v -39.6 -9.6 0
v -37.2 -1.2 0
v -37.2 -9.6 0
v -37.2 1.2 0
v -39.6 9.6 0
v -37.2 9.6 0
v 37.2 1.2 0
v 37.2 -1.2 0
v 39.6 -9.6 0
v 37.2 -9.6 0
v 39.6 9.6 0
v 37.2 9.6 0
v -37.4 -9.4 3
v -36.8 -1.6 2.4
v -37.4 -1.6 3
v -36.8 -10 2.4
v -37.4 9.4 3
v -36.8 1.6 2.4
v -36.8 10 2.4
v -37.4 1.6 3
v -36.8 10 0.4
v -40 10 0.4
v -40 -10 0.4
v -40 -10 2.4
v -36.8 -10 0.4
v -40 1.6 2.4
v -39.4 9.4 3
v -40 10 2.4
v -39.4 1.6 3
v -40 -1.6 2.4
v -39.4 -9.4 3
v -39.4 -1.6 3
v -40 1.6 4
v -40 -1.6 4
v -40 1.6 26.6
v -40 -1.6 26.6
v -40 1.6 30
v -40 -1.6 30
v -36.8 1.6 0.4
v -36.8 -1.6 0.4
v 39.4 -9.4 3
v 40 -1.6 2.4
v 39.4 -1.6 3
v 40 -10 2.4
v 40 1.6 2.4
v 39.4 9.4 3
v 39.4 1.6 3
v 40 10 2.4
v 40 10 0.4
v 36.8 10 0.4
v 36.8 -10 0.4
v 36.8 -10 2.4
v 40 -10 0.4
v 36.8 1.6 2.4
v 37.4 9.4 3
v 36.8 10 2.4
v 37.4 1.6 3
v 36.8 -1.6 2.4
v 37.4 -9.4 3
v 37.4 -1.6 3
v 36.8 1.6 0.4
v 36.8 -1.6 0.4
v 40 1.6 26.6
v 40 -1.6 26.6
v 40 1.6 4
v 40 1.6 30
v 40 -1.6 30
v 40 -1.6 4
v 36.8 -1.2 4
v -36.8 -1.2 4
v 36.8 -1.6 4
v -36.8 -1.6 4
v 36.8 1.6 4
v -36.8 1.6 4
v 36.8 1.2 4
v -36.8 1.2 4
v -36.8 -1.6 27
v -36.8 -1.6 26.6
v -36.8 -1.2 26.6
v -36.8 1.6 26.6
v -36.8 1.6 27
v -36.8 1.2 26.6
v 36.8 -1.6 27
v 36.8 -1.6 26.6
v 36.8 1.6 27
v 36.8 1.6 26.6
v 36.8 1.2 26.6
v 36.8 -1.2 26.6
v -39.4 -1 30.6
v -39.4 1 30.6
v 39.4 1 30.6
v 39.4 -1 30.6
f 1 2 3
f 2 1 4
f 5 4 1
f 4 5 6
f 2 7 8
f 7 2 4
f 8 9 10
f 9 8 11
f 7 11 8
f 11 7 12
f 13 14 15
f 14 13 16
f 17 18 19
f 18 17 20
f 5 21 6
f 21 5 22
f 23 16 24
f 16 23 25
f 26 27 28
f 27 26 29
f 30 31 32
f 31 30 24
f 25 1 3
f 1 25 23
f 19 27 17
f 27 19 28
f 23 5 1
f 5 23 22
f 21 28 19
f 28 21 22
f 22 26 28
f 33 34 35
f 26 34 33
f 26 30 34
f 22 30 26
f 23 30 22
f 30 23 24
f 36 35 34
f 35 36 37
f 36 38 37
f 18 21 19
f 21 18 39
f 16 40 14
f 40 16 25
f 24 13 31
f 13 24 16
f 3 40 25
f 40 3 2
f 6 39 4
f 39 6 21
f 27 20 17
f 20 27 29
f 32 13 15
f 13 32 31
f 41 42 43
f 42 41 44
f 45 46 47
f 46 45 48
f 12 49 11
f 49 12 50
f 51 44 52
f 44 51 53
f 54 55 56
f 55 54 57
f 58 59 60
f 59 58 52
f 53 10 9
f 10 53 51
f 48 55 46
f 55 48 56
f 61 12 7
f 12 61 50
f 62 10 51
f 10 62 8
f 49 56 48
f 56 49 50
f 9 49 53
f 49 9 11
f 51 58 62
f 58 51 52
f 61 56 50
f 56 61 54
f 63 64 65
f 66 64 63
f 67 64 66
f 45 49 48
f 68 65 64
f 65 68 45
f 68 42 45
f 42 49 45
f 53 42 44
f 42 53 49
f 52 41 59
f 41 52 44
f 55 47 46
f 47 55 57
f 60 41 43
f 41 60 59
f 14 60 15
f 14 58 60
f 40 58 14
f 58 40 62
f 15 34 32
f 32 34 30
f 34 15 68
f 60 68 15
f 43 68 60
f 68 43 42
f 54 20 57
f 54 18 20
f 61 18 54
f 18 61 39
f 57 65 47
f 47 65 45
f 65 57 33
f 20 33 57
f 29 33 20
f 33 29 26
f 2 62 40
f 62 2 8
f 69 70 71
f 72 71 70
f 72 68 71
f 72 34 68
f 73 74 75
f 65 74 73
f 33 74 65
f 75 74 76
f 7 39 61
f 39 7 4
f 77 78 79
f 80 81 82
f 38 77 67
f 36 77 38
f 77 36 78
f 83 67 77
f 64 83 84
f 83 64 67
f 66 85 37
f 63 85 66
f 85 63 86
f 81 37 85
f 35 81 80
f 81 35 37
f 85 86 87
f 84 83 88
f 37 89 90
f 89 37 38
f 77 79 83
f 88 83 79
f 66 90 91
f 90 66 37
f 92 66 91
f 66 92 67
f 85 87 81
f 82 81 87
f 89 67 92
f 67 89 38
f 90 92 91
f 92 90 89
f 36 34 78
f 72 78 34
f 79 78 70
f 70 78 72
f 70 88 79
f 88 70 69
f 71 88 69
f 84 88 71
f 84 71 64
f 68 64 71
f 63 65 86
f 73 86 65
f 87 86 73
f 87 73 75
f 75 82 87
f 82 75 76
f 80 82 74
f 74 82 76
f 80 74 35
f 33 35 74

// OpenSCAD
// screen.scad - mobile privacy screen (design_brief.md 4.6). Straight panel 80 long (bed length)
// and 30.6 high (bed height + 10), both from common.scad; curtain 2.4 thick between 3.2 end
// posts, bottom rail 3.2 x 4, top rail 3.2 x 4 widening from the curtain at 45 deg, two feet
// 3.2 x 20 x 3 across the ends. Three colours: feet and bottom rail Z 0-4, curtain 4-26.6,
// top rail 26.6-30.6; the posts follow the bands. Prints upright, brim optional.
// Export: openscad -o screen.stl screen.scad
include <common.scad>

height_above_bed = 10;
height        = bed_h + height_above_bed;   // 30.6
length        = bed_l;                      // 80
curtain_t     = 2.4;
frame_t       = 3.2;                        // rails and end posts
bottom_rail_h = 4;
top_rail_h    = 4;
foot_l        = 20;
foot_h        = 3;
top_chamfer   = 0.6;

top_rail_z = height - top_rail_h;           // 26.6, second colour change
post_x     = (length - frame_t) / 2;        // post centres

// Band 1: bottom rail and feet, Z 0-4
module screen_base() band_colour(1) {
    l = length / 2; t = frame_t / 2; cb = chamfer_bottom;
    ring_stack([[l - cb, t - cb, 0], [l, t, cb], [l, t, bottom_rail_h]]);
    for (x = [-post_x, post_x]) translate([x, 0, 0]) chamfered_box([frame_t, foot_l, foot_h], cb = cb, ct = top_chamfer);
}

// Band 2: curtain and posts, Z 4-26.6
module screen_curtain() band_at(2, bottom_rail_h, top_rail_z - bottom_rail_h) {
    square([length - 2 * frame_t, curtain_t], center = true);
    for (x = [-post_x, post_x]) translate([x, 0]) square([frame_t, frame_t], center = true);
}

// Band 3: top rail, Z 26.6-30.6; its underside widens from the curtain to the frame at 45 deg
module screen_top_rail() band_colour(3) {
    l = length / 2; t = frame_t / 2; c = curtain_t / 2; step = t - c; ov = band_overlap;
    // the overlap into the curtain tapers in by ov, so no face is coplanar with the curtain
    ring_stack([[l - ov, c - ov, top_rail_z - ov], [l, c, top_rail_z], [l, t, top_rail_z + step],
                [l, t, height - top_chamfer], [l - top_chamfer, t - top_chamfer, height]]);
    for (x = [-post_x, post_x])                    // fills the widening step above the posts
        translate([x, 0, 0]) ring_stack([[t - ov, t - ov, top_rail_z - ov], [t, t, top_rail_z], [t, t, top_rail_z + step]]);
}

module screen() { screen_base(); screen_curtain(); screen_top_rail(); }

screen();
